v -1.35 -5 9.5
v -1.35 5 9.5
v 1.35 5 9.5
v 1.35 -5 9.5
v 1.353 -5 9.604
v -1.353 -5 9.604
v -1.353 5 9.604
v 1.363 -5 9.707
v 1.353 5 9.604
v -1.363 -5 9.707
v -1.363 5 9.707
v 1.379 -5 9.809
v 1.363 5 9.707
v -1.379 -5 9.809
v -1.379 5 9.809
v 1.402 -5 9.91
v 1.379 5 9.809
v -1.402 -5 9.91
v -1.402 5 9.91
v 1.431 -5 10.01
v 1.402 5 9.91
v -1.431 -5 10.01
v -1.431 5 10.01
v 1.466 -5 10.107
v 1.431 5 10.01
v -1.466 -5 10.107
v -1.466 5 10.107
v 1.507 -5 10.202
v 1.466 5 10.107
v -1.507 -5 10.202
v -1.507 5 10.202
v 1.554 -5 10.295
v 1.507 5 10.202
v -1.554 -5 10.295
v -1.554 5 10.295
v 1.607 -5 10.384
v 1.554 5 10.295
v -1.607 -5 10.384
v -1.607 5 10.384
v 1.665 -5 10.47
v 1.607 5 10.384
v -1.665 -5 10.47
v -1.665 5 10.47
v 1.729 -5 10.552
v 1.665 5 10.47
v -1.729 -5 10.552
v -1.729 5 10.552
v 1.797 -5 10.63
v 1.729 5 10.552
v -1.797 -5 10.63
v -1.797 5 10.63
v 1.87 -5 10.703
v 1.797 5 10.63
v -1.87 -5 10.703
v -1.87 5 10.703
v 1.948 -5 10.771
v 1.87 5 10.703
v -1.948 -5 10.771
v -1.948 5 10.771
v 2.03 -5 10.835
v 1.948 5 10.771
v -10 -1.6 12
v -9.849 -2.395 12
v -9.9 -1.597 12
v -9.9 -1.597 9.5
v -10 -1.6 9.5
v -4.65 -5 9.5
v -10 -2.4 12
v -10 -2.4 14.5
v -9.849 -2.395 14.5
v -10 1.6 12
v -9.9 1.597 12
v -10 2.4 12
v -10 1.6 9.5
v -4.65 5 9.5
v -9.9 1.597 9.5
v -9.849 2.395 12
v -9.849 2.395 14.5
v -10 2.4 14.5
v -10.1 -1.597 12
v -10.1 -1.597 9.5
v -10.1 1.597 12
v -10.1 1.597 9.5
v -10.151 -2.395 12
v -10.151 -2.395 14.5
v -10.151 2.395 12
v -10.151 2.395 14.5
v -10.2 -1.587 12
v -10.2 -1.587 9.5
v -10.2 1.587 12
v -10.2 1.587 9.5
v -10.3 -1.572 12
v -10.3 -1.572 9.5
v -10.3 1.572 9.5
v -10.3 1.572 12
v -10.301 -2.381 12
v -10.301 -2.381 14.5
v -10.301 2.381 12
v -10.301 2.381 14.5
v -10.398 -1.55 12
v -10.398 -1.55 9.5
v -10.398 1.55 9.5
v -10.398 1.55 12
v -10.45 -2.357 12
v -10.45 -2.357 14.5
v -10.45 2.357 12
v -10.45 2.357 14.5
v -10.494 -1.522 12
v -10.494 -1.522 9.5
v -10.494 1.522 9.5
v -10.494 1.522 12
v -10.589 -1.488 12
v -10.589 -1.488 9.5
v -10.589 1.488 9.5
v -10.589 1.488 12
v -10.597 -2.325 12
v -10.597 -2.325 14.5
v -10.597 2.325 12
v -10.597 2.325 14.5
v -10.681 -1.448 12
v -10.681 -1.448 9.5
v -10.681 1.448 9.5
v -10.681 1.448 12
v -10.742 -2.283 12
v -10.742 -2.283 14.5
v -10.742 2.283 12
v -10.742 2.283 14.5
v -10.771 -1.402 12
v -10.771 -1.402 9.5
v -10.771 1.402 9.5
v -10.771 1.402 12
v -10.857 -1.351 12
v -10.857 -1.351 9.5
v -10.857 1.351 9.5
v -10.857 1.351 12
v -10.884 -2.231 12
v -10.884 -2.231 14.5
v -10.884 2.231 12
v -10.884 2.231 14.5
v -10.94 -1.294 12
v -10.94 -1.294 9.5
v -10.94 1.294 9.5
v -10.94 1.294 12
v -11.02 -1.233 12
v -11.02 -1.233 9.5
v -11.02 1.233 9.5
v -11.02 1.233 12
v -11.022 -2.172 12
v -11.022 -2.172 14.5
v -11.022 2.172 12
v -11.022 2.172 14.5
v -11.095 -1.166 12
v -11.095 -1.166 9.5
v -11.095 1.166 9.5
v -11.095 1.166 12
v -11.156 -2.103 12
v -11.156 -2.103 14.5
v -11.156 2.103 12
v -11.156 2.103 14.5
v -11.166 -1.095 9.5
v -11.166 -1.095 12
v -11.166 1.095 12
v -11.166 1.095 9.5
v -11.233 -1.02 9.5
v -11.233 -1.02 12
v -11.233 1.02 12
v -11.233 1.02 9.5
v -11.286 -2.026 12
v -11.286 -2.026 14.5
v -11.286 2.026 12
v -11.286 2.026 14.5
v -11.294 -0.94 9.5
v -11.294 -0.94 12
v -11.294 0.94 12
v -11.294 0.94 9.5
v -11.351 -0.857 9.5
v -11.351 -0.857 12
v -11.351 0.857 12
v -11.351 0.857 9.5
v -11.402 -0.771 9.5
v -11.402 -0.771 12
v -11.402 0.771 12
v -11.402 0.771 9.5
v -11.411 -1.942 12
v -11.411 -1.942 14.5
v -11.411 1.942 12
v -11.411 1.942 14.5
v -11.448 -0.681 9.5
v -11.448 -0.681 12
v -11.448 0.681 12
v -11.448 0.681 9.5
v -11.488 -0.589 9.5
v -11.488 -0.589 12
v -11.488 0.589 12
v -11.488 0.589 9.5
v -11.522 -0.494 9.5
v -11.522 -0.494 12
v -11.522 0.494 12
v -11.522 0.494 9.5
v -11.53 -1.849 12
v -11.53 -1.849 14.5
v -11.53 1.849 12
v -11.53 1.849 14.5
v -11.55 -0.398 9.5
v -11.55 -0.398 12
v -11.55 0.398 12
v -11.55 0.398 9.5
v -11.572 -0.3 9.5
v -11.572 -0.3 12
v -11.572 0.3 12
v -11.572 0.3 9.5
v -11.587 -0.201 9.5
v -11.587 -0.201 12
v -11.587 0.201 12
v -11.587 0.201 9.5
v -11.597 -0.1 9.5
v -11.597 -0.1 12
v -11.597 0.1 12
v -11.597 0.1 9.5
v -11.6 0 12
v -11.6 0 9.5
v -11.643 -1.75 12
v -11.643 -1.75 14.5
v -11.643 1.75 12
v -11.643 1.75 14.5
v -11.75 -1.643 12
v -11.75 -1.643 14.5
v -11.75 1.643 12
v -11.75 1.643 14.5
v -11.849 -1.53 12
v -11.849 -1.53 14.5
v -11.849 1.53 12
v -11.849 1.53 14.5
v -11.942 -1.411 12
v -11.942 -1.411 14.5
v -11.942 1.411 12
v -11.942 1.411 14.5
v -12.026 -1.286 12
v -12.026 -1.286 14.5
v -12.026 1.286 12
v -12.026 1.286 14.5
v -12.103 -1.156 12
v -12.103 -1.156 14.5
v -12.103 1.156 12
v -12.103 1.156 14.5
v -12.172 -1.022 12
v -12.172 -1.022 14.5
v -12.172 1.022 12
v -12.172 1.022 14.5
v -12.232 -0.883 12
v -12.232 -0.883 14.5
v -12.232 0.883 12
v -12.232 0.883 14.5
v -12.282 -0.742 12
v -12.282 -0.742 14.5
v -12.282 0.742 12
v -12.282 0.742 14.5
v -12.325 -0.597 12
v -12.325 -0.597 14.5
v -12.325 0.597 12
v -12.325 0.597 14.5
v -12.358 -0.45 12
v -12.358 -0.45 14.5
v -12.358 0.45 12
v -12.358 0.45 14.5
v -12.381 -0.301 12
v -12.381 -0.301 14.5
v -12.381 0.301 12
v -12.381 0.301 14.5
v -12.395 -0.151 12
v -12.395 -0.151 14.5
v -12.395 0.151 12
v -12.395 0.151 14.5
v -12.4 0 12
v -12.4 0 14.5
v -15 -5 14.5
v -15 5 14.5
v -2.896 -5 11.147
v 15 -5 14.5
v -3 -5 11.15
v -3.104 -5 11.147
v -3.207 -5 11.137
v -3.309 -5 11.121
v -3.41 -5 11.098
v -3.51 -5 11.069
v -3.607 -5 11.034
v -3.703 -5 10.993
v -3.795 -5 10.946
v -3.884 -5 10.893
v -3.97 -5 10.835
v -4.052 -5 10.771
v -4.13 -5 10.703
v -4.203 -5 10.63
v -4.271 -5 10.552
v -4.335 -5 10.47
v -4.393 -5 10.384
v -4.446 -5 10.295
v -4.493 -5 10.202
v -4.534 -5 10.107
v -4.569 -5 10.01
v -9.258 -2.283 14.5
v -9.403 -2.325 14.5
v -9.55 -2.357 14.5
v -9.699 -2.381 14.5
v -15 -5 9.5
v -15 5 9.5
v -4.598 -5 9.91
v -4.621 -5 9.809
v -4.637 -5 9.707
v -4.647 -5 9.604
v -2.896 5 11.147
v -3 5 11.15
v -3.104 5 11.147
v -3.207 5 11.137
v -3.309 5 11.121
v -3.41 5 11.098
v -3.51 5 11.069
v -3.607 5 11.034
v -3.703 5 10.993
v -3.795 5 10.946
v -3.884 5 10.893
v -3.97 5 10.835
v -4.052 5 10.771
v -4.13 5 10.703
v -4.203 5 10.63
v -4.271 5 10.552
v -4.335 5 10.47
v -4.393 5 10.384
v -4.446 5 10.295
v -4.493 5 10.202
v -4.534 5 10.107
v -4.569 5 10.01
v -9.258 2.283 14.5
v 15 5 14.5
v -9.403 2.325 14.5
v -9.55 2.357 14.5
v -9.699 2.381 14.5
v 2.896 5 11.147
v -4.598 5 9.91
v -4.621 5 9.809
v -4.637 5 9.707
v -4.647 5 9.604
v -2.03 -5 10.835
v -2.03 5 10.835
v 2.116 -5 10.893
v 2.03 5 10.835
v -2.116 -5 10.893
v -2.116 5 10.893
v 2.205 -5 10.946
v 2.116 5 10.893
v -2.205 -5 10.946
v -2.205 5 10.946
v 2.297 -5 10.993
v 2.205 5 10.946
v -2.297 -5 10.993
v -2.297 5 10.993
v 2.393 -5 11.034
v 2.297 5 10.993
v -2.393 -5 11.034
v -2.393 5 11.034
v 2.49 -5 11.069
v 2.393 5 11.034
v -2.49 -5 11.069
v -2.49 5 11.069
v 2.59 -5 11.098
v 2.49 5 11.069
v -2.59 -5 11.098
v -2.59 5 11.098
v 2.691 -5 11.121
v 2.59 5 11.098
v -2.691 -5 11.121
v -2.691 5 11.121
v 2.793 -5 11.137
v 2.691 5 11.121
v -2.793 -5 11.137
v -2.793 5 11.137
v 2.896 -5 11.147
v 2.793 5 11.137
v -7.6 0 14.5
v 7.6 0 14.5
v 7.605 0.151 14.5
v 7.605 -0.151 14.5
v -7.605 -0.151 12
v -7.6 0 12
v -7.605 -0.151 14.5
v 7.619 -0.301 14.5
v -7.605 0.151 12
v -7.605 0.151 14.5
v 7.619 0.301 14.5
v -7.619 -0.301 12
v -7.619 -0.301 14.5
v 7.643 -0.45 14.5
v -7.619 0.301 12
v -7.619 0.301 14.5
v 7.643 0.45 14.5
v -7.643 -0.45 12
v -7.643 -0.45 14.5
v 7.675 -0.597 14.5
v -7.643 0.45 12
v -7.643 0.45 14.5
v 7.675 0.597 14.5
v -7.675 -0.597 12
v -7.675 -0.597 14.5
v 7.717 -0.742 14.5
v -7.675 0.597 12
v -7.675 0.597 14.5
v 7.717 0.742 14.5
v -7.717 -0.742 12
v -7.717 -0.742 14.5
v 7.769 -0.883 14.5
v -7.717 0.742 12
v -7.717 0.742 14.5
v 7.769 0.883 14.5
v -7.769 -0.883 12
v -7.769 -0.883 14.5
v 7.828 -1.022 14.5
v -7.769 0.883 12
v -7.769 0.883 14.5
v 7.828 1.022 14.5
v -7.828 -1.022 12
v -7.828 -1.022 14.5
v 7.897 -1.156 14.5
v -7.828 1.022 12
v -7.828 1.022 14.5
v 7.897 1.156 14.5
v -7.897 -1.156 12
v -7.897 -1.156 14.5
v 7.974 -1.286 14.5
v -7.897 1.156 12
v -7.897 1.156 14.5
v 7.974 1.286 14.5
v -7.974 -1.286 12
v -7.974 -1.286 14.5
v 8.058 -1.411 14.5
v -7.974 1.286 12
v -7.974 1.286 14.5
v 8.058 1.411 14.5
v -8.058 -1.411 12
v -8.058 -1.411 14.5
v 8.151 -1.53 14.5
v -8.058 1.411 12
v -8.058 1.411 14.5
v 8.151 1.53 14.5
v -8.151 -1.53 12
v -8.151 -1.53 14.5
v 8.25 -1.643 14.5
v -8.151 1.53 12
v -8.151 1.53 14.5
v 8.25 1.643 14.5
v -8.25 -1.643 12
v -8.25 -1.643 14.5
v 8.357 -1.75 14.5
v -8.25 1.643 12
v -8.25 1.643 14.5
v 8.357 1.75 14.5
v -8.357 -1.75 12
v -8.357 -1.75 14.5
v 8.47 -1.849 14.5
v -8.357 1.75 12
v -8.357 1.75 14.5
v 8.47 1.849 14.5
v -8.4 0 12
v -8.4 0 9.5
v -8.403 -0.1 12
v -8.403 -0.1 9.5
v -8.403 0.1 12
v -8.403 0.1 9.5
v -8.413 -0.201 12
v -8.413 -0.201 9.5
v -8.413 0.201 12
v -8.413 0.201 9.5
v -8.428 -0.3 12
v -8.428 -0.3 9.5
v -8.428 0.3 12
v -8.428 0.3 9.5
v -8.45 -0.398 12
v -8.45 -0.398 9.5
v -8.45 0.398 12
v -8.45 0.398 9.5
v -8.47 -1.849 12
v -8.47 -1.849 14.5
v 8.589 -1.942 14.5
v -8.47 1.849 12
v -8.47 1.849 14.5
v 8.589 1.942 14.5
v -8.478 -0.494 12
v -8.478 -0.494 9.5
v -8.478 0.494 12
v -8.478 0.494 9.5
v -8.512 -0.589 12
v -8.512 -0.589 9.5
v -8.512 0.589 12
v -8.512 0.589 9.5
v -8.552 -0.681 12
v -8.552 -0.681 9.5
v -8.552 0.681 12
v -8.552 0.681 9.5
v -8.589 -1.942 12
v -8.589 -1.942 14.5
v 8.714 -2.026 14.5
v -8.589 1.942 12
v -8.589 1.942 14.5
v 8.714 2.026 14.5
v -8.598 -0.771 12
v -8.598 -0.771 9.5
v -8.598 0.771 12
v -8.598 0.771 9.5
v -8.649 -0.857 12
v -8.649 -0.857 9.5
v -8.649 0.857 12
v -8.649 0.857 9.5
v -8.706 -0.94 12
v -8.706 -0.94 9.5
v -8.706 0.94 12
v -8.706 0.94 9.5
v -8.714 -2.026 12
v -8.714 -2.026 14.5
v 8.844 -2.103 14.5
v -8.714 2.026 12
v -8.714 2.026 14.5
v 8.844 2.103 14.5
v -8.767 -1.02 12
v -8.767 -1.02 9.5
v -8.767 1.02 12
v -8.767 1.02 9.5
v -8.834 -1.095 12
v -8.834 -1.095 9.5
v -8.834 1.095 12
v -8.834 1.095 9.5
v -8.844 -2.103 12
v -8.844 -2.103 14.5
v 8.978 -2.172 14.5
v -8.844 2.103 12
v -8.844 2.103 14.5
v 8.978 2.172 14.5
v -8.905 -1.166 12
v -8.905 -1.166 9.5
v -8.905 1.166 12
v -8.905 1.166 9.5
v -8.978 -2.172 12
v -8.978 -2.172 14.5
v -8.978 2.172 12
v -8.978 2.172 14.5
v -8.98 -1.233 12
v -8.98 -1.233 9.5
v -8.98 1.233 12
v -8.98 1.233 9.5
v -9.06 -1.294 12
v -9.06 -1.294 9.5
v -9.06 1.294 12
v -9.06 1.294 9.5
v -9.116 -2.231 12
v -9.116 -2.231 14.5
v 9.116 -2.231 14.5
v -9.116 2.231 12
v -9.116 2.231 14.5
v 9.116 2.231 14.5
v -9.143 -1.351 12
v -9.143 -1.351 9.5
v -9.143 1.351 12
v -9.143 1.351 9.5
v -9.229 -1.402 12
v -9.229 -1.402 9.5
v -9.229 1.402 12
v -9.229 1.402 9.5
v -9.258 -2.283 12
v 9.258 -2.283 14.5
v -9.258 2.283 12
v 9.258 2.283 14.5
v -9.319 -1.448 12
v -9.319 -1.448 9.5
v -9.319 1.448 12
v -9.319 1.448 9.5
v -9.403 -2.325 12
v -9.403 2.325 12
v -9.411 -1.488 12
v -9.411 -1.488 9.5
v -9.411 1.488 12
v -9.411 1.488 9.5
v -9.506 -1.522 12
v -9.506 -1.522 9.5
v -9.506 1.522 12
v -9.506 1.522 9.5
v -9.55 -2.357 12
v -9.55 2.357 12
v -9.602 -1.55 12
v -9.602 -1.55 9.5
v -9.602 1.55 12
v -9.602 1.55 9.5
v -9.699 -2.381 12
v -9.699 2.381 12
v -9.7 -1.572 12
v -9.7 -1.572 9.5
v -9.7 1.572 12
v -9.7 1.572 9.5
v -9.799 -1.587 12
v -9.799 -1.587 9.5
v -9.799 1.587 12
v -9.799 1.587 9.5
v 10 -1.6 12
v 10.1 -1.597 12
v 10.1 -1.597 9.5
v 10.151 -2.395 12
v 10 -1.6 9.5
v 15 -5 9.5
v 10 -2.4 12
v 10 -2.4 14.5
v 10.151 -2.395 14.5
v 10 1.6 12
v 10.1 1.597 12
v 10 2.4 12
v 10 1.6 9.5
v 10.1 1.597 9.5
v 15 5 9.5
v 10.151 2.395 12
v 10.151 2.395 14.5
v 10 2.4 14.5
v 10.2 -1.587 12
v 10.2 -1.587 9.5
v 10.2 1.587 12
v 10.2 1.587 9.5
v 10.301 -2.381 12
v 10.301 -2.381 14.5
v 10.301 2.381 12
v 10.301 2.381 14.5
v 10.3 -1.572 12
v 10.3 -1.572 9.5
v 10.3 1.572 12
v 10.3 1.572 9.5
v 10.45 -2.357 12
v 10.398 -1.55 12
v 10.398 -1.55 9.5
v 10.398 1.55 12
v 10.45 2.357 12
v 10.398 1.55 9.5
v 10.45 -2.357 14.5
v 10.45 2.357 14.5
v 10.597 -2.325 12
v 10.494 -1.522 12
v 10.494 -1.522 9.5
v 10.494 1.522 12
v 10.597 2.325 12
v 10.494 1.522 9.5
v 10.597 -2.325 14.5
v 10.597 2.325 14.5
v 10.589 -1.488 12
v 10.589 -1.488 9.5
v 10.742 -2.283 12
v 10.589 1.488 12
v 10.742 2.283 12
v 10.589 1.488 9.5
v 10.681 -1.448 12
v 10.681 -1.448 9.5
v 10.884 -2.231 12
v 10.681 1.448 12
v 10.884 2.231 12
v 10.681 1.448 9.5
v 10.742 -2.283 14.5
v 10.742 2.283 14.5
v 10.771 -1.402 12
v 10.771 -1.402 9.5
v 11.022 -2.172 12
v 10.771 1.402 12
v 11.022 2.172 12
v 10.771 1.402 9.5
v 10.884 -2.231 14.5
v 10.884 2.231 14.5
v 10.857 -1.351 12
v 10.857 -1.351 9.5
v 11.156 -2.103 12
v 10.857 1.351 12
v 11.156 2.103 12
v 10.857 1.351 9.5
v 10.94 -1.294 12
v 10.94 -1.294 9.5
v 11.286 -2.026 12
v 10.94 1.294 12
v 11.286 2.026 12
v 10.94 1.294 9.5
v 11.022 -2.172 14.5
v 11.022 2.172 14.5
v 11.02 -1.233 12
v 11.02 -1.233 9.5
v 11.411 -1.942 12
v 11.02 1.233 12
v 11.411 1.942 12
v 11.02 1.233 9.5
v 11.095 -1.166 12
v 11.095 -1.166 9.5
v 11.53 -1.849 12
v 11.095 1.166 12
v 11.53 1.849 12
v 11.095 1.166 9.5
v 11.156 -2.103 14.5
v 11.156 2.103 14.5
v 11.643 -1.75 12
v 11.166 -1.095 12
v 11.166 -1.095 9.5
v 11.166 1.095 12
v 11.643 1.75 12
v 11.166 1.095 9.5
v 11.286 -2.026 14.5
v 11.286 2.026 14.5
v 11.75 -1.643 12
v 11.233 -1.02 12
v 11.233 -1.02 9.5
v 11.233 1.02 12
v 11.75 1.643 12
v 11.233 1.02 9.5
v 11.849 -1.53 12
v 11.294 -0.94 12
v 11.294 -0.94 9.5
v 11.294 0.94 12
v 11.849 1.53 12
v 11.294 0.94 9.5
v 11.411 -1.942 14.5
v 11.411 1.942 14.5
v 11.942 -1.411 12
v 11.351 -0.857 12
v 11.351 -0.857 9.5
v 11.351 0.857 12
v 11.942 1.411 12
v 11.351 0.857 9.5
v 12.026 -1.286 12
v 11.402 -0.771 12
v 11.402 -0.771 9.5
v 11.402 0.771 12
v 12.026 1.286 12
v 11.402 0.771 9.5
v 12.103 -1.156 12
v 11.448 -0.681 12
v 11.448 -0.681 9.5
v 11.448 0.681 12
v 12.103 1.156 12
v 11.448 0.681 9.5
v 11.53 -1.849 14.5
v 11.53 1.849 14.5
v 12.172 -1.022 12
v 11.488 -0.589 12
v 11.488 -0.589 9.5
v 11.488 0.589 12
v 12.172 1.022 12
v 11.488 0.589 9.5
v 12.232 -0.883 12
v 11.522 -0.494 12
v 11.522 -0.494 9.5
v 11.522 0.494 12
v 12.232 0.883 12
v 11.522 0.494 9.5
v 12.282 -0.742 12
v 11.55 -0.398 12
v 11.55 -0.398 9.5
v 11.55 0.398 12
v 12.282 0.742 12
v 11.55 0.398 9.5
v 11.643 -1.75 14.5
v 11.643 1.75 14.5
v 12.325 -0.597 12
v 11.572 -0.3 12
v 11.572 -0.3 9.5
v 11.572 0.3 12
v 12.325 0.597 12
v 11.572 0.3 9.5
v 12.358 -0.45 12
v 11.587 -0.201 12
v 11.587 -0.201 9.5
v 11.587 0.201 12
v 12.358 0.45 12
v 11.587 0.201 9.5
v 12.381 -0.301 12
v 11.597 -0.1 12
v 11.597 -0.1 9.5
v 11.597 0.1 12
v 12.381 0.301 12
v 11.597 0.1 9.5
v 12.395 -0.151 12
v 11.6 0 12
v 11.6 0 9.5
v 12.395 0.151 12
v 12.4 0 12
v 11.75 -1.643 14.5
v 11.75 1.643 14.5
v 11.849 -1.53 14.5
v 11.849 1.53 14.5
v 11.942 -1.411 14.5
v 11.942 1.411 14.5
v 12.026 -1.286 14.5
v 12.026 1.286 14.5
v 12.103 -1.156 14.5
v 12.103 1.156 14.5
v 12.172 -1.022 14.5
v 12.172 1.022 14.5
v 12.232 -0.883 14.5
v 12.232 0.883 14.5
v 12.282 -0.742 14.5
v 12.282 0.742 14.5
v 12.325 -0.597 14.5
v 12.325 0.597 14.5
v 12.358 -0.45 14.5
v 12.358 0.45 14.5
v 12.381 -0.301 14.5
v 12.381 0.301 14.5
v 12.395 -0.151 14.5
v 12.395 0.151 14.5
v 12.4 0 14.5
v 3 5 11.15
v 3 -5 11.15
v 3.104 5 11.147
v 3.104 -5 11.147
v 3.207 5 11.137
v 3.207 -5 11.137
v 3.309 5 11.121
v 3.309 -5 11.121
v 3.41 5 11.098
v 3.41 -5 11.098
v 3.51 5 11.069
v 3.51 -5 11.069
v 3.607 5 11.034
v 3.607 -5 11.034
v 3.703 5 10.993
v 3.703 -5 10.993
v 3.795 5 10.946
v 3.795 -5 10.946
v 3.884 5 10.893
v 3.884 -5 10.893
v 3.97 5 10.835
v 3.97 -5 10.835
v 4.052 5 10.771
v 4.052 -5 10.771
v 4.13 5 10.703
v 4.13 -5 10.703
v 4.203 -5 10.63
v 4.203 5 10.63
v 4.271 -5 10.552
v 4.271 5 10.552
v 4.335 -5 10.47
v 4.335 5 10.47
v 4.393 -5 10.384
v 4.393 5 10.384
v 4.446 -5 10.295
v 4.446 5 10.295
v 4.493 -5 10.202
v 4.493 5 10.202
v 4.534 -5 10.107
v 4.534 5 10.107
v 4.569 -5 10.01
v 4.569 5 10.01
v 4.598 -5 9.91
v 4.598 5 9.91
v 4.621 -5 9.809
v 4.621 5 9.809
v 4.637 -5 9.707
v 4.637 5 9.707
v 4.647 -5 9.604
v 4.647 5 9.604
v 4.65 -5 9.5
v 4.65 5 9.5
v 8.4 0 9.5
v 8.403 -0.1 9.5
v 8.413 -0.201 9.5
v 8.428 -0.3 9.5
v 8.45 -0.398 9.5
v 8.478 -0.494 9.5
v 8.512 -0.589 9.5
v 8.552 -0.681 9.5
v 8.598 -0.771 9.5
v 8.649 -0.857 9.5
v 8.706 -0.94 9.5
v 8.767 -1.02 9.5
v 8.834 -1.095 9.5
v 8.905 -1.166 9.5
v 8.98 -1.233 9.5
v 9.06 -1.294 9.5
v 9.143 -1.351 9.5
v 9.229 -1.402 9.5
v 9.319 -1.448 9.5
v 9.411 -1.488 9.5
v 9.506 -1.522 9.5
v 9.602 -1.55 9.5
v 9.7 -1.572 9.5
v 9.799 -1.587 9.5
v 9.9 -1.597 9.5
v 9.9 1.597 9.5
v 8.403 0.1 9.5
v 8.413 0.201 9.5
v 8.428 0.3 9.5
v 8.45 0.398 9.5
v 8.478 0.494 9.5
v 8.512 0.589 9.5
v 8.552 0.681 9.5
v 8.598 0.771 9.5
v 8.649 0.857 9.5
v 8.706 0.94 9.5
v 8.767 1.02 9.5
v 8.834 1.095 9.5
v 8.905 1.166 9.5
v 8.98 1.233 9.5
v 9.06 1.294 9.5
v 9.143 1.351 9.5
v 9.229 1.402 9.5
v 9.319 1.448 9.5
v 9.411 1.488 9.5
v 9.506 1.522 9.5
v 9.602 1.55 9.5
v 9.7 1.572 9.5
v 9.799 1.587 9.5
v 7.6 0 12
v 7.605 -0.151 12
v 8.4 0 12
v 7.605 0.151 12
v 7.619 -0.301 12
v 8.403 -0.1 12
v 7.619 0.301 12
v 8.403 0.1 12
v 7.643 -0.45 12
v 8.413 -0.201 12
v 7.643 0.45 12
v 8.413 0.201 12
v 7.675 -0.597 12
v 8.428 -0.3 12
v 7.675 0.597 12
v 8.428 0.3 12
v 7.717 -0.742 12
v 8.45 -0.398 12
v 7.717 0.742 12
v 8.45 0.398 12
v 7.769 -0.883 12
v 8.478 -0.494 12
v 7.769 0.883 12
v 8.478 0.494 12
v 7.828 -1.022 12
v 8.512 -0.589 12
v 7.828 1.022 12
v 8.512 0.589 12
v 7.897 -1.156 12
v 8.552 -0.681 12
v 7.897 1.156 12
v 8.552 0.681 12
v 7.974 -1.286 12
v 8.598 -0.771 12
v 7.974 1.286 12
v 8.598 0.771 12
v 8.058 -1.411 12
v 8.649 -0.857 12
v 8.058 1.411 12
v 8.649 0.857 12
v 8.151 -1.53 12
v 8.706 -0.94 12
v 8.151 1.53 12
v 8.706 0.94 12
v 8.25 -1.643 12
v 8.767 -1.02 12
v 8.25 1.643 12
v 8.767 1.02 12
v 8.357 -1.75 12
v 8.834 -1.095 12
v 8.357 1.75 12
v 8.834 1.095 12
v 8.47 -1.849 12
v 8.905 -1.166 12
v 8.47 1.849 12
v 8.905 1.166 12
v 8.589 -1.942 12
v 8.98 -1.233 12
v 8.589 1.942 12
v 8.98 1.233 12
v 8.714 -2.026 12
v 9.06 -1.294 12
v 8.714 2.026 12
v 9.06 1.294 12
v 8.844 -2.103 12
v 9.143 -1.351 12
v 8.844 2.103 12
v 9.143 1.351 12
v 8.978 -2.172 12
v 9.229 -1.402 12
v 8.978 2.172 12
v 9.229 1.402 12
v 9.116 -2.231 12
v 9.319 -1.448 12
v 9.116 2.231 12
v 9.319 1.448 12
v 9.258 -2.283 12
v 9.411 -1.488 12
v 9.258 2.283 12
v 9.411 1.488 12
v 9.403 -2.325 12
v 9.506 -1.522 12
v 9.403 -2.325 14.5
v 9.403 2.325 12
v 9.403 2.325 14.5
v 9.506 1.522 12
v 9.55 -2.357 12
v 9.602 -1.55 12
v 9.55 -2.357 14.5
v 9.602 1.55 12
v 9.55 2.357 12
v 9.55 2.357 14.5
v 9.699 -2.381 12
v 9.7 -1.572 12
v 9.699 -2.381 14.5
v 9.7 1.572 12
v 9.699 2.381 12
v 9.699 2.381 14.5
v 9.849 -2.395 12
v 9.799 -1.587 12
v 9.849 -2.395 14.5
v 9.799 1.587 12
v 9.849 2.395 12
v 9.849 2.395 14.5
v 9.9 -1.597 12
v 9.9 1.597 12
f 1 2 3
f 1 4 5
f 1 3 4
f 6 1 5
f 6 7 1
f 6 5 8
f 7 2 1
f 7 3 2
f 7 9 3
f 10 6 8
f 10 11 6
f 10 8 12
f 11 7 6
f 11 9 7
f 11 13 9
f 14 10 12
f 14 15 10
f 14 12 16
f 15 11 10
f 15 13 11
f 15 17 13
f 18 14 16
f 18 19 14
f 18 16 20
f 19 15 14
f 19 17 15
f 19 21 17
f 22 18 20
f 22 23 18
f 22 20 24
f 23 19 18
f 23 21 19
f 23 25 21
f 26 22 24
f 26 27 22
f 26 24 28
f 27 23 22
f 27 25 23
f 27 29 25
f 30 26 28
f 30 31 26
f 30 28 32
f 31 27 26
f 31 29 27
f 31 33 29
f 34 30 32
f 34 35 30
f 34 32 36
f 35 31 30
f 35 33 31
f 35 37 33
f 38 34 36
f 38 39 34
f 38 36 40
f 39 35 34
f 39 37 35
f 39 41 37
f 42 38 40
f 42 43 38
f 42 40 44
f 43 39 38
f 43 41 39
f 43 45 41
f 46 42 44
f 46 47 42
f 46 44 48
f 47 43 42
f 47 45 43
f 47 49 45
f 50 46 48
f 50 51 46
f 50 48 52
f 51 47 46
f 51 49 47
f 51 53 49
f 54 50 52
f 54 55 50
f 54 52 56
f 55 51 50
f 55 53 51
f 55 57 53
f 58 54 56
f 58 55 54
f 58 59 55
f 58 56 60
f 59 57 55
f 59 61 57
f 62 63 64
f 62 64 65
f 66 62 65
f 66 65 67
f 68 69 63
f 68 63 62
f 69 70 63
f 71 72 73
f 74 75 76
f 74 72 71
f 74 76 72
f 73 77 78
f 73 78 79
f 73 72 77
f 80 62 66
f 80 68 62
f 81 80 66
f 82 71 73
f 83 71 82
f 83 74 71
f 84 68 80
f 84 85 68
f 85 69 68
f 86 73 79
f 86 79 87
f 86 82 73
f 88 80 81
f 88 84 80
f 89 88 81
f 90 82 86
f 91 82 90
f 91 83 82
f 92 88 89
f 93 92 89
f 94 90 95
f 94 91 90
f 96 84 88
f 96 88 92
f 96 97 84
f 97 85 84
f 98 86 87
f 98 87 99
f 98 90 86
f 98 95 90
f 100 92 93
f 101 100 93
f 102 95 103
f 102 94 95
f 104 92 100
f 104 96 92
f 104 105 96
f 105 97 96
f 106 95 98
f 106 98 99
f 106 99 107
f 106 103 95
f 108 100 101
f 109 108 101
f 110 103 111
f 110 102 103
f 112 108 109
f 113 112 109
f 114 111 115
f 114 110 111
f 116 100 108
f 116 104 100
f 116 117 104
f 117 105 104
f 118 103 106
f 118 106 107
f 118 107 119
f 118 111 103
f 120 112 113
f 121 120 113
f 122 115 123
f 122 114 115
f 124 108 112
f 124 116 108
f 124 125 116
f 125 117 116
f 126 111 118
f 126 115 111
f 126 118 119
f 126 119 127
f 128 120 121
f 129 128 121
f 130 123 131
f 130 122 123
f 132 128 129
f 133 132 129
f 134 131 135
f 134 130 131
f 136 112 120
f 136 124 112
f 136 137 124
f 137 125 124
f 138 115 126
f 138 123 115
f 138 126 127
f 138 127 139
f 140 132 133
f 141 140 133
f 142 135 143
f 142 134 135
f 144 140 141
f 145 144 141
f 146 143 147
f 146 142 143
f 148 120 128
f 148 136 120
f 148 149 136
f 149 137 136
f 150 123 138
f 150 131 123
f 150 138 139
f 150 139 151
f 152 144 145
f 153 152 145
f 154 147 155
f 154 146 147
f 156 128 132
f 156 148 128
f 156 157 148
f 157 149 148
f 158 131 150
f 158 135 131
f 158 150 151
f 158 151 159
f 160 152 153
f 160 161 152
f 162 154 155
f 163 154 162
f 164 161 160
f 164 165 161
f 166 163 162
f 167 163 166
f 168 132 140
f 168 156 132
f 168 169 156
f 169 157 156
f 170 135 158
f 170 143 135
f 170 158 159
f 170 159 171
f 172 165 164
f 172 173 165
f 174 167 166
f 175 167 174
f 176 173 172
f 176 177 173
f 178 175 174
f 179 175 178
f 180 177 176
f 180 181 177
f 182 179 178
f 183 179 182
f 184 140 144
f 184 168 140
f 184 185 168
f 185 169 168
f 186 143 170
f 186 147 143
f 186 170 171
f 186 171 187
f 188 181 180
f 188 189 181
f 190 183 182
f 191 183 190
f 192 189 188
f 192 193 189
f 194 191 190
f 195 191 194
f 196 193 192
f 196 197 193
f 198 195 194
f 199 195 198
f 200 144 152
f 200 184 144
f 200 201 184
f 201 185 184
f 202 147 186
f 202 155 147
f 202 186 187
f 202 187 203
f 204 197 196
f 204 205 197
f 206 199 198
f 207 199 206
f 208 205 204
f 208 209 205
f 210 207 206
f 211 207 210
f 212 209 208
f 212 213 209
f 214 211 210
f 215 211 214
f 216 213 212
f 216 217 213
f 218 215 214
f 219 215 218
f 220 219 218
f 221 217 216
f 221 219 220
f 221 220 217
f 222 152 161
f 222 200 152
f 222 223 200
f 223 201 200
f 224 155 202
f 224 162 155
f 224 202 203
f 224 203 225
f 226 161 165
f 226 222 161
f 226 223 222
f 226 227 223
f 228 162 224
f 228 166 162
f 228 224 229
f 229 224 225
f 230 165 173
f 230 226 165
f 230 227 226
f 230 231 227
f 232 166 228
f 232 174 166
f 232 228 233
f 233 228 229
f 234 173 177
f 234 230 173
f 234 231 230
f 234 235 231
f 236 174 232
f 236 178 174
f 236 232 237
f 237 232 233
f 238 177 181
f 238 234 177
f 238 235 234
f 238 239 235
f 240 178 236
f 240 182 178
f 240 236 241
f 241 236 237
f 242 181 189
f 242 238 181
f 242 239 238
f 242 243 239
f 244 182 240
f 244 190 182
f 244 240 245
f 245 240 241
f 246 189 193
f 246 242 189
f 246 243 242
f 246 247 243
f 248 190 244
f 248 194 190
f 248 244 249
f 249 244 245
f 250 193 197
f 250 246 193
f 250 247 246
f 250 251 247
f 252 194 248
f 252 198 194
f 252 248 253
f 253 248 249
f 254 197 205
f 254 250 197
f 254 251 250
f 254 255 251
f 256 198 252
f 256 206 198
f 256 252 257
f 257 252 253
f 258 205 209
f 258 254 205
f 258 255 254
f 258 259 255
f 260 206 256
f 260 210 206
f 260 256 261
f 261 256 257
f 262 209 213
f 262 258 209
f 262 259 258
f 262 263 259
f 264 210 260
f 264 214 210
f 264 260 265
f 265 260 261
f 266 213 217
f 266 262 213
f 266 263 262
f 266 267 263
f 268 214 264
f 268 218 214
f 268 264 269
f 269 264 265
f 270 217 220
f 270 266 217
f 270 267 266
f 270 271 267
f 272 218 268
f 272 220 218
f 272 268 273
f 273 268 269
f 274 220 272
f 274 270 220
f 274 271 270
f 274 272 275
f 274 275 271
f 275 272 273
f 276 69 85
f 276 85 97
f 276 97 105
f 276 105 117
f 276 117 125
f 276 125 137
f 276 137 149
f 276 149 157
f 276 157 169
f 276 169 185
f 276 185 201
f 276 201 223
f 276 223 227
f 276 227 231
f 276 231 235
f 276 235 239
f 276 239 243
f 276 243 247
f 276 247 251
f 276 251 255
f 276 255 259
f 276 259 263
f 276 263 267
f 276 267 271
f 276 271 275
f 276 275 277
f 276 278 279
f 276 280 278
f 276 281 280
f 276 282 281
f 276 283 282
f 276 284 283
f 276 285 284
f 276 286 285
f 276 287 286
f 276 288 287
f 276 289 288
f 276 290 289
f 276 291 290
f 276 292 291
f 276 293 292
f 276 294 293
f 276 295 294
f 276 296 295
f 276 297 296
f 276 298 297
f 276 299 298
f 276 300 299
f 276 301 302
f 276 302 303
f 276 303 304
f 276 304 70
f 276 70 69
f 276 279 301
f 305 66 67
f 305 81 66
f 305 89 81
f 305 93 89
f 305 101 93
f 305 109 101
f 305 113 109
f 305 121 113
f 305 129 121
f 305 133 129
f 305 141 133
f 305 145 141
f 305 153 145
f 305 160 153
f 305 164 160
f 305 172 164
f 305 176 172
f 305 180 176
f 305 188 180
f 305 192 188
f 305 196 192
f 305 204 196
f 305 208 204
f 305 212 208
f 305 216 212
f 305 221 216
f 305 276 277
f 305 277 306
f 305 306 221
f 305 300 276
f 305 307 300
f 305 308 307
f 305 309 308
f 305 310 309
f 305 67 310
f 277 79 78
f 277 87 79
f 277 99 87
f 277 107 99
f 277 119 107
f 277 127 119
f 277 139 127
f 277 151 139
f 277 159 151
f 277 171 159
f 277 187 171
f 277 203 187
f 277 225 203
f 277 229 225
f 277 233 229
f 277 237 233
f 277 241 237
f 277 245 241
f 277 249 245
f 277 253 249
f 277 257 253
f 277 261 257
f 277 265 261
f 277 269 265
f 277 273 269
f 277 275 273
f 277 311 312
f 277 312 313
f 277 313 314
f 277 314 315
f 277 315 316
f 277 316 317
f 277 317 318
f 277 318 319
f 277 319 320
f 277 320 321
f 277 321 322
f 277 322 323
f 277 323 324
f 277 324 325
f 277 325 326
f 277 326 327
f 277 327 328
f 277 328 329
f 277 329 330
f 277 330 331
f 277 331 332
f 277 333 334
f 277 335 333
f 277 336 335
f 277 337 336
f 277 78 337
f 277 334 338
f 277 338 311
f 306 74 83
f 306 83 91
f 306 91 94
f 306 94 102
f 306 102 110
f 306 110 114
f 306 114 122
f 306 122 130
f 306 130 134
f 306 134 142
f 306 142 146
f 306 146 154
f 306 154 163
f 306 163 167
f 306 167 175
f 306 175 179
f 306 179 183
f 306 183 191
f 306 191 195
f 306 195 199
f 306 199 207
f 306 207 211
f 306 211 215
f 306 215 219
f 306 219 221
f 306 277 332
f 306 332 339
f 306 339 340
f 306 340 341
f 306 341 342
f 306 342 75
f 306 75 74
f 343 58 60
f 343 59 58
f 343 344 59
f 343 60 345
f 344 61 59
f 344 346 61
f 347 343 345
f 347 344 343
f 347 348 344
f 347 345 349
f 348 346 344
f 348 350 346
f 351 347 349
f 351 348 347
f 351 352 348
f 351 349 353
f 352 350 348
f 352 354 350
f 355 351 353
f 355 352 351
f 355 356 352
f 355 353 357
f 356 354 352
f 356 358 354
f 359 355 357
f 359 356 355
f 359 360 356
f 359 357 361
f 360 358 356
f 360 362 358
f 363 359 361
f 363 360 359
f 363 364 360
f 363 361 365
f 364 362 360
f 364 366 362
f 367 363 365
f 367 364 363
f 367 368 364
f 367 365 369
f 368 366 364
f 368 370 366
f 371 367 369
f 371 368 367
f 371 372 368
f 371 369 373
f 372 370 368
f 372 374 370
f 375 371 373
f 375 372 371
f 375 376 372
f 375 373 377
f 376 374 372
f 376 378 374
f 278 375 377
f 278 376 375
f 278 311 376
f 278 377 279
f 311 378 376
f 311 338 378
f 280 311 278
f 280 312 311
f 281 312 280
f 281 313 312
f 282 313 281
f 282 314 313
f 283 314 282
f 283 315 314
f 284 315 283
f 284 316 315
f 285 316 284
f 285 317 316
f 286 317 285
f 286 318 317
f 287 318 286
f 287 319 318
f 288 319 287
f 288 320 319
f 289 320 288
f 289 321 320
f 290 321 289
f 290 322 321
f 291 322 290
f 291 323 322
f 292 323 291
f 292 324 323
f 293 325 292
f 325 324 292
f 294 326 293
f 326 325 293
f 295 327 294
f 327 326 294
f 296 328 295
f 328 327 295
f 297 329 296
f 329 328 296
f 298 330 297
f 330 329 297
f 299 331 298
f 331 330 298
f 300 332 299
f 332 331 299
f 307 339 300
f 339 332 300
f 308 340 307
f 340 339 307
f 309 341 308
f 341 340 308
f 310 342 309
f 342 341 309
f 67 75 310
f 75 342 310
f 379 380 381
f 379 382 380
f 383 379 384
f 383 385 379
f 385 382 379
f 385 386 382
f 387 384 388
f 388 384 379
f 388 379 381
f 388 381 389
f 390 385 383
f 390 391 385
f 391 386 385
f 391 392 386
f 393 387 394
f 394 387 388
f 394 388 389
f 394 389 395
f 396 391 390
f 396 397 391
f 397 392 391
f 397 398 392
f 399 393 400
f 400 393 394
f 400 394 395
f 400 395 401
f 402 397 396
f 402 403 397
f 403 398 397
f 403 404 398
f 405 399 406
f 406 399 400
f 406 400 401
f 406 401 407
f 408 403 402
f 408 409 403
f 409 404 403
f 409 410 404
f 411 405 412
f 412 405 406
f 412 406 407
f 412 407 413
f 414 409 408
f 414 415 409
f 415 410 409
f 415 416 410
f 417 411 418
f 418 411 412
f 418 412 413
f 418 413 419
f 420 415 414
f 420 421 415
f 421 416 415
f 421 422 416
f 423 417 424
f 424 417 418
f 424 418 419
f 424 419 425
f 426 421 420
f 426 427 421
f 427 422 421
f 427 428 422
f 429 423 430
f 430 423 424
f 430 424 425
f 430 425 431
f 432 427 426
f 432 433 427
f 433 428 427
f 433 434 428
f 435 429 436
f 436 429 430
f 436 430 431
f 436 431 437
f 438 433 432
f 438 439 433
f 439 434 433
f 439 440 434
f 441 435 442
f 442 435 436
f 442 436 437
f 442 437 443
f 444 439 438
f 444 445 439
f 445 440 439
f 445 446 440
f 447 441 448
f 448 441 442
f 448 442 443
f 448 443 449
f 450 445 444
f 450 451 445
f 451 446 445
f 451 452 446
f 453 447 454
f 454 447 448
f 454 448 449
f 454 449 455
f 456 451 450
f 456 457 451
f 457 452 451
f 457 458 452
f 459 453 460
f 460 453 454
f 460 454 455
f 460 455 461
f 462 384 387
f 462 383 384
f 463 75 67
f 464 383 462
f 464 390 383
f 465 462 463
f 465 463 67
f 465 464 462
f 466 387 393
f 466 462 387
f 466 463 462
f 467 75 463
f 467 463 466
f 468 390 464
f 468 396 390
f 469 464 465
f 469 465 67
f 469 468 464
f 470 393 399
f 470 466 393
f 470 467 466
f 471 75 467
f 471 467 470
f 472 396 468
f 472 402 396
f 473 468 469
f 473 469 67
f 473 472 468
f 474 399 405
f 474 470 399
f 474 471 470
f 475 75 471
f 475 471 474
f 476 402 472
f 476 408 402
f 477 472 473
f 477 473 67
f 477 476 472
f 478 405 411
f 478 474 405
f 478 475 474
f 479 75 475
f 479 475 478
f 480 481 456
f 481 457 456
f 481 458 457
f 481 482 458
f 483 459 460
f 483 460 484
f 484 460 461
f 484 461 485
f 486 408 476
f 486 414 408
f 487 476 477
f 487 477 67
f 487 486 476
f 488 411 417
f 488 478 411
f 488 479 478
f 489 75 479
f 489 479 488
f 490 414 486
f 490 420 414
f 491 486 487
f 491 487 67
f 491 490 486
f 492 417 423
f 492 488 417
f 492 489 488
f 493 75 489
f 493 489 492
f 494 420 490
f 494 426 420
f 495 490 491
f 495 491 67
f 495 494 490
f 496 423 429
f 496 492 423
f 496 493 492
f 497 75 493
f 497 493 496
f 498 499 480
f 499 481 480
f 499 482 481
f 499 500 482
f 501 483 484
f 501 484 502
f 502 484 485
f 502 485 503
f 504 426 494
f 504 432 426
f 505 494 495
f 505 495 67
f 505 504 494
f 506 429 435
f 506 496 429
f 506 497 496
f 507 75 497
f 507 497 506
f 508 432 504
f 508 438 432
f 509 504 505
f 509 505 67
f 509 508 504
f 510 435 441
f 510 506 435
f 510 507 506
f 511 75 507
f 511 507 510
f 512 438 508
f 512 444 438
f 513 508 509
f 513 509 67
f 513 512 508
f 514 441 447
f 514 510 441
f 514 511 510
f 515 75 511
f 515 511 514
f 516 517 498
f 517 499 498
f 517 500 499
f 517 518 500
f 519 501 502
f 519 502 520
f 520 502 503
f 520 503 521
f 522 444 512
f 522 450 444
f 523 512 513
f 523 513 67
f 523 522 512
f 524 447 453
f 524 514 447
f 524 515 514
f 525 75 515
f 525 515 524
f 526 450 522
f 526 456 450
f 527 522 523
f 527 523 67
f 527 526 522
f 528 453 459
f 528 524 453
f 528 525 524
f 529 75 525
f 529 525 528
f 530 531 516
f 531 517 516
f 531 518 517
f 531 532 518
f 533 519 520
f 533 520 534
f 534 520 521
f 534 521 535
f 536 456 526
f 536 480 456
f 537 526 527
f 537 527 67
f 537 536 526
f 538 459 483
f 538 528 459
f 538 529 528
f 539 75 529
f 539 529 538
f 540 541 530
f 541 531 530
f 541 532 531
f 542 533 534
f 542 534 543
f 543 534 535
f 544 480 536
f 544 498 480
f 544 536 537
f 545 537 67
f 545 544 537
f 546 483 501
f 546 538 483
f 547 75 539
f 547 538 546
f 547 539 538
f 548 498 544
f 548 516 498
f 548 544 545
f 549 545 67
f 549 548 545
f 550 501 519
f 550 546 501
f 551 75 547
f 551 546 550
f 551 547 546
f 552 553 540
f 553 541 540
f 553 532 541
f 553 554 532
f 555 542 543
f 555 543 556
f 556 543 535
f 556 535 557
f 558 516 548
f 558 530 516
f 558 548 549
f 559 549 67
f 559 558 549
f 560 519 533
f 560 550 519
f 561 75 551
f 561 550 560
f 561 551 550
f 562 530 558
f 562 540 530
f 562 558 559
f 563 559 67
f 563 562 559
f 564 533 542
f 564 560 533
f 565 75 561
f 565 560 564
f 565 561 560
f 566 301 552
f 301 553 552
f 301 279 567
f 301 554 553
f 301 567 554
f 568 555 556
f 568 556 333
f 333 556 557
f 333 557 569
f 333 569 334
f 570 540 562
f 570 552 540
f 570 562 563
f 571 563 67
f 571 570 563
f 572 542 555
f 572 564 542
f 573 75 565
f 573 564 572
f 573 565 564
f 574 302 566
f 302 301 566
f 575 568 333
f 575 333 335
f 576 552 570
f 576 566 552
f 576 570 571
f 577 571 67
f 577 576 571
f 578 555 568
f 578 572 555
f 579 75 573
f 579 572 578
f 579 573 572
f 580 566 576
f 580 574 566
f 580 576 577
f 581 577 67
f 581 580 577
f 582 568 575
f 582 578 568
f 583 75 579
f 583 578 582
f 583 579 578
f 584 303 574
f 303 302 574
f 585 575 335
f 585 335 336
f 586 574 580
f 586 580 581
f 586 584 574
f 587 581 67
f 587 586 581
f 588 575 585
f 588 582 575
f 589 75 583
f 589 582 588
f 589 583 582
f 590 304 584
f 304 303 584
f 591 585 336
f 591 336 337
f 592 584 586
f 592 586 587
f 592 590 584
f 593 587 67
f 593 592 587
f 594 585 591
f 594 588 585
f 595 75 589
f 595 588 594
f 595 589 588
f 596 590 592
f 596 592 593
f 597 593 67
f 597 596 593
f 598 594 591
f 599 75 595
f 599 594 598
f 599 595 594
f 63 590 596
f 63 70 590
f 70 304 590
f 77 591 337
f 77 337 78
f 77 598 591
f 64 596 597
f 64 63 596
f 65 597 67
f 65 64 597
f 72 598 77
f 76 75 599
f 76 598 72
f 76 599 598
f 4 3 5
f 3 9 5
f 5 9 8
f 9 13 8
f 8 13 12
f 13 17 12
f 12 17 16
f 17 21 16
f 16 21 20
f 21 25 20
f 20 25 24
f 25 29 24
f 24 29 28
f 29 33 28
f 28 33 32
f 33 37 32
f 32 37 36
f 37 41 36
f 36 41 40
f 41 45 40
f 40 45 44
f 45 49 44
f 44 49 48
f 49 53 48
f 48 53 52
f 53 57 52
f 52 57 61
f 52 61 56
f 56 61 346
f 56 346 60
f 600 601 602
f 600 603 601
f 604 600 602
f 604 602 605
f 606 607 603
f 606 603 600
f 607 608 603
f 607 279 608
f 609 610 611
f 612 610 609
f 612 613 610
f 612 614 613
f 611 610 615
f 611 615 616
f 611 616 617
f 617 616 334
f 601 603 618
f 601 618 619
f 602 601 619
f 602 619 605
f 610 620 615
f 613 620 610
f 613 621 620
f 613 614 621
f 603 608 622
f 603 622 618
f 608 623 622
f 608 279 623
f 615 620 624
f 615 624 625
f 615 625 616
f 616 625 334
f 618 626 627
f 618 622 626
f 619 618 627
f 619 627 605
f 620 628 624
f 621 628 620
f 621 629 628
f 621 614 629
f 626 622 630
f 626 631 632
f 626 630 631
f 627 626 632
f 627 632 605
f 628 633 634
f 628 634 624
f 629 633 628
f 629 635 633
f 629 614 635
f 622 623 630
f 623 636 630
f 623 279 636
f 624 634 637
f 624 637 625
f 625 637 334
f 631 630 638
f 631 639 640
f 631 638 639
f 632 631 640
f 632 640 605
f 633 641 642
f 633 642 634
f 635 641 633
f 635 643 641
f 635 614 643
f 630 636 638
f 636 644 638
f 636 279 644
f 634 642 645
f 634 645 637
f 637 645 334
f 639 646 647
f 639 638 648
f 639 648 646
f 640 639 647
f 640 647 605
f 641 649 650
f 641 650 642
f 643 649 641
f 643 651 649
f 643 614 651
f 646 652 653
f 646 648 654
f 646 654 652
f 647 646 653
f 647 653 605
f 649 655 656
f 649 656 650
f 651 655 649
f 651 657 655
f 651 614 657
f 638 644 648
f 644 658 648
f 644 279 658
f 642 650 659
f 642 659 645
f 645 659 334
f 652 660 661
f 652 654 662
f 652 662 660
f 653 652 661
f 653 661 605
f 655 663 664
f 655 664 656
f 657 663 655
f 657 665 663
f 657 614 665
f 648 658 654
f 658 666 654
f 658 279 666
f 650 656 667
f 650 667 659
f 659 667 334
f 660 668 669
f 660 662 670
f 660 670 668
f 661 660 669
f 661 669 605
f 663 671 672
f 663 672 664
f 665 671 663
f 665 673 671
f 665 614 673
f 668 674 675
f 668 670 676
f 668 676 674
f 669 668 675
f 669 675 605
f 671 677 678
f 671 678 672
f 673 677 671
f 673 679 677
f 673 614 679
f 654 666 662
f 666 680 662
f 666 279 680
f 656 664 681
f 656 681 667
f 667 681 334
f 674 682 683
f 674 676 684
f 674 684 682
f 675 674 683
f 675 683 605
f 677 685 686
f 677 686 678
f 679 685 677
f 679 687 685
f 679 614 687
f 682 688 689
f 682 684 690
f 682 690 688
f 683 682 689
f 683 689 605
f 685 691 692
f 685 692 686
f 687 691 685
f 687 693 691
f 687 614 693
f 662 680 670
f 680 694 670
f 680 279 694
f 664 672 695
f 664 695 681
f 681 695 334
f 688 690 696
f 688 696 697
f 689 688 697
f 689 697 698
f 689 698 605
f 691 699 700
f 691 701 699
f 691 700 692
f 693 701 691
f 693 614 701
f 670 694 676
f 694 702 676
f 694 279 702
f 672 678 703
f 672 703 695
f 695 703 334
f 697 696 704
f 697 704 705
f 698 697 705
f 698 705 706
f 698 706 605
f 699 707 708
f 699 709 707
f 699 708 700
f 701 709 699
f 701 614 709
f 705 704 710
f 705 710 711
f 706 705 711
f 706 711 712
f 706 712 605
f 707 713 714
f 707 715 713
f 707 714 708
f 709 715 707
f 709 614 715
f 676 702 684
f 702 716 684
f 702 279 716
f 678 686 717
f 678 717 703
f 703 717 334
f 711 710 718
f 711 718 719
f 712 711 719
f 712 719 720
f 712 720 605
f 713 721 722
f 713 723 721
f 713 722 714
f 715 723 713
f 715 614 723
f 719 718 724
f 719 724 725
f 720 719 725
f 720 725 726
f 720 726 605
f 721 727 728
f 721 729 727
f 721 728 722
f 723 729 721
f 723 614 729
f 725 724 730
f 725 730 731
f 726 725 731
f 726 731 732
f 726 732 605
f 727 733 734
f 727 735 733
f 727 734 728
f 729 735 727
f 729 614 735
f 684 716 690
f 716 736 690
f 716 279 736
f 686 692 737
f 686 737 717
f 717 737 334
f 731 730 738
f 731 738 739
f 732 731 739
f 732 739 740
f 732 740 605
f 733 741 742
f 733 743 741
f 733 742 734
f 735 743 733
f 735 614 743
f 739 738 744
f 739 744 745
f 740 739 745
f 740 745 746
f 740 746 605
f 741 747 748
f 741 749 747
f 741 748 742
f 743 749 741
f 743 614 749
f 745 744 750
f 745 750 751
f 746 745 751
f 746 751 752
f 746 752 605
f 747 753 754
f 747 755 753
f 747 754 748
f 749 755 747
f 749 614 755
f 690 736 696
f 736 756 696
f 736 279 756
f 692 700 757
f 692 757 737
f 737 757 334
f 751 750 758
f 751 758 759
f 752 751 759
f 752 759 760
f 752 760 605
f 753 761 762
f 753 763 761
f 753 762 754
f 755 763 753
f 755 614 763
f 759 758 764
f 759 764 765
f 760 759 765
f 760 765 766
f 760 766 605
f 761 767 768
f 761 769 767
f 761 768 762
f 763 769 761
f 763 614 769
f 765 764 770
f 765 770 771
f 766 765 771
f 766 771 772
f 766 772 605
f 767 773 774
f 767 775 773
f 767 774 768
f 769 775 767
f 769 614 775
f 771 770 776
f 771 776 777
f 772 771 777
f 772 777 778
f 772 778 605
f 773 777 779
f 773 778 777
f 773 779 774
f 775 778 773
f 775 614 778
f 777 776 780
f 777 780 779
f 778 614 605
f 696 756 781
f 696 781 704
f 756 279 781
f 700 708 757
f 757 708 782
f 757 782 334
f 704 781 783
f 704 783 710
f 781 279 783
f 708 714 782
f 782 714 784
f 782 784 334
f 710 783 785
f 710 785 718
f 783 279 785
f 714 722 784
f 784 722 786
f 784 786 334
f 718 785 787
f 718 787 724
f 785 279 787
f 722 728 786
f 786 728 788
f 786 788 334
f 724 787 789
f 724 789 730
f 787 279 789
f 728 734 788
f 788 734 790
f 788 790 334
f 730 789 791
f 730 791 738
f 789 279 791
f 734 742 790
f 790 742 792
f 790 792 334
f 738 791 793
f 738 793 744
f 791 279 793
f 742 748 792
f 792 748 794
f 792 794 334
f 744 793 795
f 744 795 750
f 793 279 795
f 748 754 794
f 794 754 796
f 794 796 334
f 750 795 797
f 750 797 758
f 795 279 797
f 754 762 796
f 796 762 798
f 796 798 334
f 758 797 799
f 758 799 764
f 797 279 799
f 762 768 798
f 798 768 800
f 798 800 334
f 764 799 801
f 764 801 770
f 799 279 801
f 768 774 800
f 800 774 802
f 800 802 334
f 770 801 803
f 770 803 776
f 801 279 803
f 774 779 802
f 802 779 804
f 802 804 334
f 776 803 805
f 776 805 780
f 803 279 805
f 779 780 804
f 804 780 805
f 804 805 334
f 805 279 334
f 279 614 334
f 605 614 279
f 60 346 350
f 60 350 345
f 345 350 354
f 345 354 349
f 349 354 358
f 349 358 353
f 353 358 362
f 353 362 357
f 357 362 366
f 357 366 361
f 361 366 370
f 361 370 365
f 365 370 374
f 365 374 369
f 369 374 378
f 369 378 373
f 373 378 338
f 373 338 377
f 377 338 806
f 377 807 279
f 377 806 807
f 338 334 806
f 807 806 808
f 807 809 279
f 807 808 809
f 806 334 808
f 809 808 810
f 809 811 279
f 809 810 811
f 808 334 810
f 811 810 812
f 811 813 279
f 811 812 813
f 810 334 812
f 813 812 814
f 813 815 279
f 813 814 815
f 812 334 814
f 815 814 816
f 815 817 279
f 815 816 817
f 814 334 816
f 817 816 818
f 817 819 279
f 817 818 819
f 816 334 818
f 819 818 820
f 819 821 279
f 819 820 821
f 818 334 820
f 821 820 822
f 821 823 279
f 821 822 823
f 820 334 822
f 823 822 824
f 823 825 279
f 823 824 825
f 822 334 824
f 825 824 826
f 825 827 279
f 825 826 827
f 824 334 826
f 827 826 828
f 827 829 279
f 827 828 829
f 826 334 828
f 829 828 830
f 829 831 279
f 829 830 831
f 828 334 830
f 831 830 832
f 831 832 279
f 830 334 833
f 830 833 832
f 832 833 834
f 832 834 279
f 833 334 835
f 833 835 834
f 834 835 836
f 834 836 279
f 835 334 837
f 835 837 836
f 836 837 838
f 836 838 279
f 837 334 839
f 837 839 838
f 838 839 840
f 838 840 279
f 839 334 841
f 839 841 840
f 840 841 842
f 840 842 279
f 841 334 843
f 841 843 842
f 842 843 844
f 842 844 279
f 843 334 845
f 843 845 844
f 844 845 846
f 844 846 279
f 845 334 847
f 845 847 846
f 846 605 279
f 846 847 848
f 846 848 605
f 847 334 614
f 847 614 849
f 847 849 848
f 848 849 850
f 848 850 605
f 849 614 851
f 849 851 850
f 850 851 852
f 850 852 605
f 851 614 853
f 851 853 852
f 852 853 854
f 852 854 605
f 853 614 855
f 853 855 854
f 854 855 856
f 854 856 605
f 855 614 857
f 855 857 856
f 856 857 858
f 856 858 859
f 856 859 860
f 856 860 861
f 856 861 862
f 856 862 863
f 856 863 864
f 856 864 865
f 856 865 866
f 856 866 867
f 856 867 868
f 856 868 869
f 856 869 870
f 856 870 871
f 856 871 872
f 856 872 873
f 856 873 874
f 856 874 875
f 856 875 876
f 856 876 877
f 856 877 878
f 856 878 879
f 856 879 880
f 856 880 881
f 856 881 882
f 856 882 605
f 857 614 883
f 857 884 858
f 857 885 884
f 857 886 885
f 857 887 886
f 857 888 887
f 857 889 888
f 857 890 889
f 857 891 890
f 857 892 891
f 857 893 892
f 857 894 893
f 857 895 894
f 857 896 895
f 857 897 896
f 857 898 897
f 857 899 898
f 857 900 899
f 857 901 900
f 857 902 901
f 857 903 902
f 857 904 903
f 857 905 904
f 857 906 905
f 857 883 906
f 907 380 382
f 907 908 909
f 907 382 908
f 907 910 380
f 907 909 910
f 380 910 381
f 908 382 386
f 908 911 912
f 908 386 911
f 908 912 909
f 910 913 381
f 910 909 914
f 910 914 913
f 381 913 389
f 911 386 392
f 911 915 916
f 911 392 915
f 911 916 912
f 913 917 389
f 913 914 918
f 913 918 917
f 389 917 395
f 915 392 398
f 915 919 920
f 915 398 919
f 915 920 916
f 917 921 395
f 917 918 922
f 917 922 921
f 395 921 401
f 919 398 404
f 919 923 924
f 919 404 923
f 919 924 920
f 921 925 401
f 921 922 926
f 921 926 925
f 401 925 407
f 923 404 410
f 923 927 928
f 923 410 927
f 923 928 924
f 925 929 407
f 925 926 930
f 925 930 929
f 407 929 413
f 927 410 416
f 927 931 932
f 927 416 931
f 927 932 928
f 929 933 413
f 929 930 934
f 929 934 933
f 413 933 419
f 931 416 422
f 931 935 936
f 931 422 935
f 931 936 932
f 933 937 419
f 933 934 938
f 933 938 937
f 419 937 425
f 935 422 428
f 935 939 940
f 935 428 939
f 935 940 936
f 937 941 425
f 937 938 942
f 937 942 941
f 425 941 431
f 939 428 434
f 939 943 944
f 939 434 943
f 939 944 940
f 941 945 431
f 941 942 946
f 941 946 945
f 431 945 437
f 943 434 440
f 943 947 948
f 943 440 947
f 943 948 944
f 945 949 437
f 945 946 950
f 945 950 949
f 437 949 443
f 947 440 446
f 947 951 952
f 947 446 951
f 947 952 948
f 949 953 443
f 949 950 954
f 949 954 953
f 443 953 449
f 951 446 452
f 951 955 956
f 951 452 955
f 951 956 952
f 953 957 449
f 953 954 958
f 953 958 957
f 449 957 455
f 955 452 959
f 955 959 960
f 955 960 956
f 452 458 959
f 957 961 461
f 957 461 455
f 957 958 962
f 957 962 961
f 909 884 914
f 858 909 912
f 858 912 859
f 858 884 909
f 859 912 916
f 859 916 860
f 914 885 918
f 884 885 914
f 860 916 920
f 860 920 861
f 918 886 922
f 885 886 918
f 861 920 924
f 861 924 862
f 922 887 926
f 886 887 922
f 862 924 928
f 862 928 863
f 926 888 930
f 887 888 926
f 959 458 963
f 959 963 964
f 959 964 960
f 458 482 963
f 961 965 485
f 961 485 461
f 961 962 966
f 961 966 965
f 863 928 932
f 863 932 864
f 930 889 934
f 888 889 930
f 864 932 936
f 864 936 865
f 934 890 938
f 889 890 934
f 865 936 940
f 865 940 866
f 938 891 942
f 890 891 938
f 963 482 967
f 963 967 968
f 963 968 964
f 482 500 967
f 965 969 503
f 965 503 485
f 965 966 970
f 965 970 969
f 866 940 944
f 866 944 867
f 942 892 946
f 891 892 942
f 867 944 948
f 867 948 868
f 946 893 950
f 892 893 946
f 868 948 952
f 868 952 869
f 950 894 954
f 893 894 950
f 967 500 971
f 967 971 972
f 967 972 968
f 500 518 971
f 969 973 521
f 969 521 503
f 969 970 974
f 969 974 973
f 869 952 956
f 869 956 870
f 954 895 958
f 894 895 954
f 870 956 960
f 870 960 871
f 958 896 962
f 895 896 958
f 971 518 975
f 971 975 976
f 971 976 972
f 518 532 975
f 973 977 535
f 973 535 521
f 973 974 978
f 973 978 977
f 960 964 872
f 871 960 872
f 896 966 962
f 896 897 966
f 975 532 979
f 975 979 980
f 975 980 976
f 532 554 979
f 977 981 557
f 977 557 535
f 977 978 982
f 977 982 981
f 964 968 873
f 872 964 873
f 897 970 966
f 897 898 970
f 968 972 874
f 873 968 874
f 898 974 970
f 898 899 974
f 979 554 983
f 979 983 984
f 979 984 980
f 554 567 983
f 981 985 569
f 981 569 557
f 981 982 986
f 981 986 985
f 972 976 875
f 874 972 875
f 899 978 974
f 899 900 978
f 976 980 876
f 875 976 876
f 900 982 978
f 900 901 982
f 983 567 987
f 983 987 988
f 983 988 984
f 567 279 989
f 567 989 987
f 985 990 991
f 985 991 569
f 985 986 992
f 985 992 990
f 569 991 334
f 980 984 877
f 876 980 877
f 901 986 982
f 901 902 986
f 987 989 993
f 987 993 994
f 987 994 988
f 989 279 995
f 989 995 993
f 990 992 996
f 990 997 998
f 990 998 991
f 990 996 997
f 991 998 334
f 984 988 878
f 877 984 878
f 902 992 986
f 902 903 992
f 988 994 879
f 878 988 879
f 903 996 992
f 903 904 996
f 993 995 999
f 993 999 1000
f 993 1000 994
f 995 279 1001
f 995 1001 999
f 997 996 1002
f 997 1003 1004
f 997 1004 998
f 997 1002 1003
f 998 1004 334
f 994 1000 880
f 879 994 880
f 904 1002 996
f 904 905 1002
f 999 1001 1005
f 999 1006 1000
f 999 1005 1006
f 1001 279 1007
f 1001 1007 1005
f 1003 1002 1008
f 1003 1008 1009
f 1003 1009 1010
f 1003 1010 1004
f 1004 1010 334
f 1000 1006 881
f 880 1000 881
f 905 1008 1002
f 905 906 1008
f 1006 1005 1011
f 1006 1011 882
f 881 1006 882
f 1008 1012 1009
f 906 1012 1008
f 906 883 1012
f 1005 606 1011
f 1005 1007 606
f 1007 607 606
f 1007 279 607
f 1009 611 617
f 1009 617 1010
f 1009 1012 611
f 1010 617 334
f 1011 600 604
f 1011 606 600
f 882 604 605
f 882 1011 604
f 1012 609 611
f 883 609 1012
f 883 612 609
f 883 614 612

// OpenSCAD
//parametry
sleevelength=30;
sleevewidth=10;
sleeveheight=7;
sleeveheightupper=5;
wirediameter=3.3;

//parametrs
M3_screw_diameter=3.2;
M3_nut_height = 2.7;
M3_nut_diameter = 6.6;
M3_screw_head_height = 3;


//horni pritlacna deska
difference(){
  translate([0,0,12])
  cube(size=[sleevelength,sleevewidth,sleeveheightupper],center=true);
  translate([10,0,12-sleeveheightupper/2])
  rotate([0,0,90])
  {
    cylinder(h=sleeveheightupper*4,d=M3_screw_diameter,$fn=100);
  }
  translate([-10,0,12-sleeveheightupper/2])
  rotate([0,0,90])
  {
    cylinder(h=sleeveheightupper*4,d=M3_screw_diameter,$fn=100);
  }
  translate([10,0,12])
  rotate([0,0,90])
  {
      cylinder(h=M3_screw_head_height,d=M3_screw_diameter*1.5,$fn=100);
  }
  translate([-10,0,12])
  rotate([0,0,90])
  {
    cylinder(h=M3_screw_head_height,d=M3_screw_diameter*1.5,$fn=100);
  }


// vyrez pro ulozeni vodicu
  translate([-3,0,12-sleevewidth/4])
  rotate([90,0,0]){
    cylinder(h=sleevewidth,d=wirediameter,$fn=100,center=true);
  }
  translate([3,0,12-sleevewidth/4])
  rotate([90,0,0]){
    cylinder(h=sleevewidth,d=wirediameter,$fn=100,center=true);
  }
}
